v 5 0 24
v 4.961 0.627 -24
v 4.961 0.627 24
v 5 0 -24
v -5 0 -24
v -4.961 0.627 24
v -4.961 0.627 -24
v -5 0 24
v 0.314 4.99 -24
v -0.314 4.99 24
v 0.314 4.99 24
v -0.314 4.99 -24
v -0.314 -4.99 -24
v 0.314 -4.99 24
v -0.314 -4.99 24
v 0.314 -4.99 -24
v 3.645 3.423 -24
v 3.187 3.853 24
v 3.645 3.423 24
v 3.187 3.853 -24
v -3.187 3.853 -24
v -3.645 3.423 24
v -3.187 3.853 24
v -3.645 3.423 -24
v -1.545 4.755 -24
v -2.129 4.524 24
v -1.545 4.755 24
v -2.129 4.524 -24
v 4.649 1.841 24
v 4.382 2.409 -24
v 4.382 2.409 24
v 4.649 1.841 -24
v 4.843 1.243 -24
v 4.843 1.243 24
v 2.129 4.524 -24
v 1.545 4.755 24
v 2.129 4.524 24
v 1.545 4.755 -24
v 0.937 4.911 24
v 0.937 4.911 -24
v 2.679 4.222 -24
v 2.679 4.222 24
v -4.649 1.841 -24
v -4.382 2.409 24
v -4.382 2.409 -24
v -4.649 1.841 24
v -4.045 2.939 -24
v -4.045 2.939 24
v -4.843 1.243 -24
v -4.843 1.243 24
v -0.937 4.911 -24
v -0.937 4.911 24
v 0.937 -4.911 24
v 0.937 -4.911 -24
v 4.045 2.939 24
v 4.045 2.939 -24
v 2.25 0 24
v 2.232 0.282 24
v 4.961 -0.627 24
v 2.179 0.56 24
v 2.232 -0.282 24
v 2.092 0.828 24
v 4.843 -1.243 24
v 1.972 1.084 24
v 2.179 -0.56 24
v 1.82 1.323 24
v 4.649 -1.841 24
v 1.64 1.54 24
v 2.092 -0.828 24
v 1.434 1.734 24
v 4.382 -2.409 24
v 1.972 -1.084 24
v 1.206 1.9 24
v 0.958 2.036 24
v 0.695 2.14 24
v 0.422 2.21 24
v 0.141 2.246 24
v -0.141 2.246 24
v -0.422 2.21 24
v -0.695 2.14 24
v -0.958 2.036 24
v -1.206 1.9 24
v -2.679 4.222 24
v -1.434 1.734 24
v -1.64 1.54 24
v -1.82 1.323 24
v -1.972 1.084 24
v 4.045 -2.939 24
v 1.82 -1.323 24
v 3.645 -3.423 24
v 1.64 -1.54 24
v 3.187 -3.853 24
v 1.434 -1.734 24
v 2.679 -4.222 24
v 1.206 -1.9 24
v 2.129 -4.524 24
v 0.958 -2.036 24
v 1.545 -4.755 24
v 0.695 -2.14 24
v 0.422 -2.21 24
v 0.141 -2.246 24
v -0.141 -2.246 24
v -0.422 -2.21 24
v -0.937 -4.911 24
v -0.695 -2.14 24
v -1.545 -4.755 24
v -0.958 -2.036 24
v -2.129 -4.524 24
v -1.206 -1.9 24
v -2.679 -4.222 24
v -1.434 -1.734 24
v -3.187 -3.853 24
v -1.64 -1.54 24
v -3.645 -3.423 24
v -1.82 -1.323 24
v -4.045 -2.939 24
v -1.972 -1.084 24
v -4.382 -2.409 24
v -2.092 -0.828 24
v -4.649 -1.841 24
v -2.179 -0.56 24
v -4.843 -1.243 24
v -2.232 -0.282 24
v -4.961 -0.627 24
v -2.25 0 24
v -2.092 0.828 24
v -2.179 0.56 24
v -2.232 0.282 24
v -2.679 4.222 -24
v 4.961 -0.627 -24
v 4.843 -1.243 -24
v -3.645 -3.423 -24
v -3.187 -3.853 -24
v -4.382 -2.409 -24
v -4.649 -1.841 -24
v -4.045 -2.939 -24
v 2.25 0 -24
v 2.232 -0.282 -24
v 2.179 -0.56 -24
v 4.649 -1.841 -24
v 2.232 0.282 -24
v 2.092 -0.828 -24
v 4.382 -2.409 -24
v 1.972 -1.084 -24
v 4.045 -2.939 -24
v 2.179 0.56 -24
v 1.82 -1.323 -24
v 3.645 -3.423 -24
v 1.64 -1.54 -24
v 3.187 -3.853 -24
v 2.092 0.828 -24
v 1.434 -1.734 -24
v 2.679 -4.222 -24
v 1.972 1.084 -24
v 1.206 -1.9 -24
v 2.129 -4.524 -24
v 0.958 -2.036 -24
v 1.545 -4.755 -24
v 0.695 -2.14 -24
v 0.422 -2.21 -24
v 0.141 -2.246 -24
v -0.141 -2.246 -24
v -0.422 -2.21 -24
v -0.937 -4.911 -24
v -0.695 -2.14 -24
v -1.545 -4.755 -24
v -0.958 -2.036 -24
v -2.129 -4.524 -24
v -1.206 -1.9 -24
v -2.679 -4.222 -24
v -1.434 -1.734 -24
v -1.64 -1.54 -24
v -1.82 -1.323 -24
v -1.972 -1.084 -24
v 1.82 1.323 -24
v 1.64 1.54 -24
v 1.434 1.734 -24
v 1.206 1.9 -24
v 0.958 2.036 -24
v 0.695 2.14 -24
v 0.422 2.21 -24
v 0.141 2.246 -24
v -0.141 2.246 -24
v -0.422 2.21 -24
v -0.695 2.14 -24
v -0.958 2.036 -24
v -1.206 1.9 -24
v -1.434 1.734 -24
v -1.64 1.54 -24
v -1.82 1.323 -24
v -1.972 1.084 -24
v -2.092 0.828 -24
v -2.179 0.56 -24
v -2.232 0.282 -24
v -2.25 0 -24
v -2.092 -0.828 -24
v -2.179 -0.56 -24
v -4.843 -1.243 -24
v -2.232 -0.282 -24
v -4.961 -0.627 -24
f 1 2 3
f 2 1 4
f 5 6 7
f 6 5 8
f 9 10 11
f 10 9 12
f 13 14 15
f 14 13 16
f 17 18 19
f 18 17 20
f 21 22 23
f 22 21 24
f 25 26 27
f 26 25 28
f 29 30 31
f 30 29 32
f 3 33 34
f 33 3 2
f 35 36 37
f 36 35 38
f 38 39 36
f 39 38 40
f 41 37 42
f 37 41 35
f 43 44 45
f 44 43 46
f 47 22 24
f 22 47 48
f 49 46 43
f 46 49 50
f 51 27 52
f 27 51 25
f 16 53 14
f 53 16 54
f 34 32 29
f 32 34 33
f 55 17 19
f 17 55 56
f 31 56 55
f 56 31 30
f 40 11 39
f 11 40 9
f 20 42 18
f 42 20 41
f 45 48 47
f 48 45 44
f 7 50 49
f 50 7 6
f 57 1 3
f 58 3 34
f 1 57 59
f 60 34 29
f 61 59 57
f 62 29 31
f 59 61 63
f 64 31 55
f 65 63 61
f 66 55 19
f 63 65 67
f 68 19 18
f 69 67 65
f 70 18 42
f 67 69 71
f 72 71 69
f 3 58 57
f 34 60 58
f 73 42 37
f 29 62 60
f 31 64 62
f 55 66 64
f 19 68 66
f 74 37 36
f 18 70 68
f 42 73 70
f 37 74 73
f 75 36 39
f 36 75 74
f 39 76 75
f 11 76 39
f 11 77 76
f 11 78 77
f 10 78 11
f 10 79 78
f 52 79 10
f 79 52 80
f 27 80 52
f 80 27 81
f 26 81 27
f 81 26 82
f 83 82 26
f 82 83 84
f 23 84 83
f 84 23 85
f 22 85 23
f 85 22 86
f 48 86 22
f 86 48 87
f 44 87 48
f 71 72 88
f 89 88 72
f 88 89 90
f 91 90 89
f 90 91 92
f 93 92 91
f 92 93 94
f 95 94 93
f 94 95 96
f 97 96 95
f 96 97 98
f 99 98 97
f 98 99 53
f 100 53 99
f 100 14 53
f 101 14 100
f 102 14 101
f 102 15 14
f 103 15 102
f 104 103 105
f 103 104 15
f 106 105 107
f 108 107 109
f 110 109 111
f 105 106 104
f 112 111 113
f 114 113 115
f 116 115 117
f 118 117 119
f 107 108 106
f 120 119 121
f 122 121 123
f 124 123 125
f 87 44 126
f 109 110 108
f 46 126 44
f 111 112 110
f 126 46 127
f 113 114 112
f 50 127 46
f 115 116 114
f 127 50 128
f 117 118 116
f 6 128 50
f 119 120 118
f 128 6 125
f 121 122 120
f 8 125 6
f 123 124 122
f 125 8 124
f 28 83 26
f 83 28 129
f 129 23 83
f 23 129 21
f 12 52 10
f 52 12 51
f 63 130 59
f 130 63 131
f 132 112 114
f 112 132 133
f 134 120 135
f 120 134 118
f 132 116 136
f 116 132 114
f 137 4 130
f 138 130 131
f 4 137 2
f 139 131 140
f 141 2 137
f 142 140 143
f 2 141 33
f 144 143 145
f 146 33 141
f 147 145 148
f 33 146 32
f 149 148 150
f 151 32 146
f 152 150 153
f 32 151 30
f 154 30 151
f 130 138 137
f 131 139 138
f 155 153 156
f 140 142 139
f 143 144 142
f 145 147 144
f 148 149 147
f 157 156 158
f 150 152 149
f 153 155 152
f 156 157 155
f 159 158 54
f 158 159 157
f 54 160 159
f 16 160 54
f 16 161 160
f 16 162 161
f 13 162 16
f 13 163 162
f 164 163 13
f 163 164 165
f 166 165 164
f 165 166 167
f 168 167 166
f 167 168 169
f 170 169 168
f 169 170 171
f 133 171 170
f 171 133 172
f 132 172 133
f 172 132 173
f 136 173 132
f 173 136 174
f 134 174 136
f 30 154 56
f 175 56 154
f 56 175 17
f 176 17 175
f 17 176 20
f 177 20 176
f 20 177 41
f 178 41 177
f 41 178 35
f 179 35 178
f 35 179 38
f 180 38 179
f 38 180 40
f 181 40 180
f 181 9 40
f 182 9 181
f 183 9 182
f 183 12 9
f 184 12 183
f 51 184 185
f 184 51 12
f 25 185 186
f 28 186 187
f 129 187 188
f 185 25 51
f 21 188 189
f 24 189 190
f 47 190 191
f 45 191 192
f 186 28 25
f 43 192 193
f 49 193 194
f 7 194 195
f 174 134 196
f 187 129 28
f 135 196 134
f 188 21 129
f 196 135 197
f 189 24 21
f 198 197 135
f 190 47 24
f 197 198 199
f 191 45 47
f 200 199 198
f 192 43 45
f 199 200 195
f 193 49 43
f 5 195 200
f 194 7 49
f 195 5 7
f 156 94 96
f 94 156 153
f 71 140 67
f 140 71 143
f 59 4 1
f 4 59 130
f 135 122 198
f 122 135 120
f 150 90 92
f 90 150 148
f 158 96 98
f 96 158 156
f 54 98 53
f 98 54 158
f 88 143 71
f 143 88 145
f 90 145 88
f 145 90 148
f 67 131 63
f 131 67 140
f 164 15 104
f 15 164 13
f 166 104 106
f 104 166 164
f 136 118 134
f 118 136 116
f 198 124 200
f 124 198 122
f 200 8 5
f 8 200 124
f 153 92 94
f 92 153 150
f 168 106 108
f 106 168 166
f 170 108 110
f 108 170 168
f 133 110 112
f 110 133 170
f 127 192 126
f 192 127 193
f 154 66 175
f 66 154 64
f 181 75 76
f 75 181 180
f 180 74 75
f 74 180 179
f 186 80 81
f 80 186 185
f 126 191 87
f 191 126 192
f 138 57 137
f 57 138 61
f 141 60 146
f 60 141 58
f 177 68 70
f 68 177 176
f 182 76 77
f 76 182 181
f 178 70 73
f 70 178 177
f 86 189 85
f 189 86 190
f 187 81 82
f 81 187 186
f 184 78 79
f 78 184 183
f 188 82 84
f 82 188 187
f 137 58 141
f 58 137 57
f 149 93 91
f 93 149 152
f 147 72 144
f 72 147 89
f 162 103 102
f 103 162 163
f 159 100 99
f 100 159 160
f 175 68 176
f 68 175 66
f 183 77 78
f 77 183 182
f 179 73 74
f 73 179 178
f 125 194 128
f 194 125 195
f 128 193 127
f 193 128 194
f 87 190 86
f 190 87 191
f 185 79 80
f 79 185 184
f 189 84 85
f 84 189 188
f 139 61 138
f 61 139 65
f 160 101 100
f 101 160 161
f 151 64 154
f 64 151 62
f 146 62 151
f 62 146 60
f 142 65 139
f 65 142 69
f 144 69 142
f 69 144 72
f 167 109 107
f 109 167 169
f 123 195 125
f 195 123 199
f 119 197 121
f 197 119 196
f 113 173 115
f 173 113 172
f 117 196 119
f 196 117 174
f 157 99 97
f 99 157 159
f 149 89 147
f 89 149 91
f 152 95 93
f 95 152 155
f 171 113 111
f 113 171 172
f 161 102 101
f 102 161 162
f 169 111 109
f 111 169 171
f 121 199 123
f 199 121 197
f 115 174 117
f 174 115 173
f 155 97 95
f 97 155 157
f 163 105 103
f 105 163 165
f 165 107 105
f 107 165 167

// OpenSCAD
$fn = 50;


difference() {
	union() {
		translate(v = [0, 0, -24.0000000000]) {
			cylinder(h = 48, r = 5.0000000000);
		}
	}
	union() {
		translate(v = [0, 0, -100.0000000000]) {
			cylinder(h = 200, r = 2.2500000000);
		}
	}
}
